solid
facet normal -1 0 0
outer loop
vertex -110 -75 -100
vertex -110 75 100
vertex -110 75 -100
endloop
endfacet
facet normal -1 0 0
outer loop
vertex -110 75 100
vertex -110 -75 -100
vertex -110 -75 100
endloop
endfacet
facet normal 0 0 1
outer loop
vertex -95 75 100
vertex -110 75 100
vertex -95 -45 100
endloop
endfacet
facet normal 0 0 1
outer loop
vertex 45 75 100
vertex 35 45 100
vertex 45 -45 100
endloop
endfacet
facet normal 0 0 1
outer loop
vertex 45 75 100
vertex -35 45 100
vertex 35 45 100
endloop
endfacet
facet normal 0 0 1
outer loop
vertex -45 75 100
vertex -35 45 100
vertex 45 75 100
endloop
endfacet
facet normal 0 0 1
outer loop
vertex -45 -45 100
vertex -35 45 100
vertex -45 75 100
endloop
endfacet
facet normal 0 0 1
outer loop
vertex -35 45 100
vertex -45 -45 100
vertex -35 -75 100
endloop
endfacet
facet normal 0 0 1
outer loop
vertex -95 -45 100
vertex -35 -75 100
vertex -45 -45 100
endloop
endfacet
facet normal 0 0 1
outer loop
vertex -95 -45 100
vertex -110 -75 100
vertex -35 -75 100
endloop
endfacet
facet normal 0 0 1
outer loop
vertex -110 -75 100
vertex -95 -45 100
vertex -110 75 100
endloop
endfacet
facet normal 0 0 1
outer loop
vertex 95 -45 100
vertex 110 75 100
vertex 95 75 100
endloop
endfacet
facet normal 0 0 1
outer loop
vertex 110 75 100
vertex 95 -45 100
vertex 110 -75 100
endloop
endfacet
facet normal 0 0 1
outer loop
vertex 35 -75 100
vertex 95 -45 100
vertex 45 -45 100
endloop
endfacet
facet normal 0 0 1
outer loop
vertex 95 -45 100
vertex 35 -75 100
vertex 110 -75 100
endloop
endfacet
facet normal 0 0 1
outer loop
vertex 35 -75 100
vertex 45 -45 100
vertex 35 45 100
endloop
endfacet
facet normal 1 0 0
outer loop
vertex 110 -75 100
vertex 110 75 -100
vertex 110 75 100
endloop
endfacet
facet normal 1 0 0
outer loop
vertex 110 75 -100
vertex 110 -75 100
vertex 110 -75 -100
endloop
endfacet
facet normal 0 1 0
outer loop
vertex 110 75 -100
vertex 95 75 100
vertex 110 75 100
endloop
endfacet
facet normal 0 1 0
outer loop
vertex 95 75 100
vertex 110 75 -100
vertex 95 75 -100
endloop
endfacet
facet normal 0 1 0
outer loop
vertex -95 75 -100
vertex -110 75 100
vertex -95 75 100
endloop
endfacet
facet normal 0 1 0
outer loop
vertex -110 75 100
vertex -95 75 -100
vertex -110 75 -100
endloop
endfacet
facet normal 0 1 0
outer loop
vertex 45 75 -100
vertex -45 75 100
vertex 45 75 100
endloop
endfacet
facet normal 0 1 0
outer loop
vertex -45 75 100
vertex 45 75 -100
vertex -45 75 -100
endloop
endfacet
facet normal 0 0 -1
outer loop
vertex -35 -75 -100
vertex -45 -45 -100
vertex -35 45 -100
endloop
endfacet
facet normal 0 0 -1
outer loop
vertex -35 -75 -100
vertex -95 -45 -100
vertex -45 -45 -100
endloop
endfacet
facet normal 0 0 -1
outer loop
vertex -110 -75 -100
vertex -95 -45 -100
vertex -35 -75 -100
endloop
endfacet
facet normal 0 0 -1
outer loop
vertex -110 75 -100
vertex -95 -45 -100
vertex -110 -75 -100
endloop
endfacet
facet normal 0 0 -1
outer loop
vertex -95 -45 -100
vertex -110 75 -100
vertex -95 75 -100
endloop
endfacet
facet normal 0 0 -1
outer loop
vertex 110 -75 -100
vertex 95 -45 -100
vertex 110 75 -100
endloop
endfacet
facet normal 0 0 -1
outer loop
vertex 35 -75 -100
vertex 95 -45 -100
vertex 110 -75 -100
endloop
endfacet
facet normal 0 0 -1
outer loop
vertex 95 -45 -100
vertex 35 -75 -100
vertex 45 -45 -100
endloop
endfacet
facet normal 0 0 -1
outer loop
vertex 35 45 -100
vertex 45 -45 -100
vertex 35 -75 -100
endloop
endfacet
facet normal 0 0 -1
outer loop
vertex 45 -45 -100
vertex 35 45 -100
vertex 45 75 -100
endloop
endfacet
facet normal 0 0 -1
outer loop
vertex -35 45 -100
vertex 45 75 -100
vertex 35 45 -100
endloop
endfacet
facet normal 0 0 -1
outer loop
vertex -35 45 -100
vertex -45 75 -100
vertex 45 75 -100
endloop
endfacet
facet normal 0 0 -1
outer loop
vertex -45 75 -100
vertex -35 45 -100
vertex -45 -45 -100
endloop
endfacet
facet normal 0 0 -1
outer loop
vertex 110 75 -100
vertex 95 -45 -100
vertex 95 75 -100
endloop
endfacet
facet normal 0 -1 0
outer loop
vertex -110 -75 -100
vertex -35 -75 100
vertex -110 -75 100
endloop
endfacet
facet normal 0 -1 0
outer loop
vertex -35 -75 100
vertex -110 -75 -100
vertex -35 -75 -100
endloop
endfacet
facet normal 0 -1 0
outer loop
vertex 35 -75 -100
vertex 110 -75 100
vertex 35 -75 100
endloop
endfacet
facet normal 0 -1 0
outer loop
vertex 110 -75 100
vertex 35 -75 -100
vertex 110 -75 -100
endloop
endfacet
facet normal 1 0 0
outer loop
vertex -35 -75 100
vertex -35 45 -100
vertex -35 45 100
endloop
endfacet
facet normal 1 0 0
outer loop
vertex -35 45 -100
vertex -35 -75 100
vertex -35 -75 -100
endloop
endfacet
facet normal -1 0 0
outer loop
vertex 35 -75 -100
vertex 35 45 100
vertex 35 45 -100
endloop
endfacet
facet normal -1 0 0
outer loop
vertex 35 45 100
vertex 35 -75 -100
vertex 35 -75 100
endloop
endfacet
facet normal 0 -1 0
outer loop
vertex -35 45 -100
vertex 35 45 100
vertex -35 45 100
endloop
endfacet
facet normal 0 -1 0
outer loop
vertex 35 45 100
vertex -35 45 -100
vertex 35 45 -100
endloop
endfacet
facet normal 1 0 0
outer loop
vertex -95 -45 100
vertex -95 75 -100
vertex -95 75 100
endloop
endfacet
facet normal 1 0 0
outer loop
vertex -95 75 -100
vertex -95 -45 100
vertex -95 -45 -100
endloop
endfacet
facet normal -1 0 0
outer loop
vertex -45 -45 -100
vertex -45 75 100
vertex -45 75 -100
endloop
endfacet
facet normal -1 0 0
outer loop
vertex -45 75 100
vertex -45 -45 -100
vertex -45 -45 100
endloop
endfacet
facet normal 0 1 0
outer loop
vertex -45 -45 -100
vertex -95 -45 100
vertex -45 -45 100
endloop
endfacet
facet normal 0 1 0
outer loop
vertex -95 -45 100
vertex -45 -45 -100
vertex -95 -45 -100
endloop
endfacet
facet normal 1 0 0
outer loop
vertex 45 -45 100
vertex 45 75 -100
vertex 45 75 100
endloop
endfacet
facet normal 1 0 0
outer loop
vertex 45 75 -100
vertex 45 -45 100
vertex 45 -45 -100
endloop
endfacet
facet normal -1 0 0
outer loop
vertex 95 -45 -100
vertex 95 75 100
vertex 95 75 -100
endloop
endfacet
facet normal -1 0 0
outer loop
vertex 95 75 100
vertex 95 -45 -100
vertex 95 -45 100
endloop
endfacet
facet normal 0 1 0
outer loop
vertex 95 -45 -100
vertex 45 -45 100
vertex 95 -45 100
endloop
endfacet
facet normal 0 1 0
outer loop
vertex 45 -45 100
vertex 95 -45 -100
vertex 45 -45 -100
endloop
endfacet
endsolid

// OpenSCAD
/* 
sponge_holder.scad
A simple sponge holder that sits in the divider between dual sinks.
@author: Suyash Kumar (suyashkumar) 
*/

module sponge_holder(
    width=220, 
    length=150, 
    height=200, 
    sink_cutout_length=70, 
    sponge_width=50,
    sponge_x_offset=70,
    sponge_y_offset=20) {
    difference() {
        cube([width, length, height], center=true);
        translate([0,-sponge_y_offset,0])
            cube([sink_cutout_length, length-sponge_y_offset, height], center=true);
        translate([-sponge_x_offset, sponge_y_offset, 0])
            cube([sponge_width, length-sponge_y_offset, height], center=true);
        translate([sponge_x_offset, sponge_y_offset, 0])
            cube([sponge_width, length-sponge_y_offset, height], center=true);
        //TODO: add water drainage holes
    }
}

sponge_holder();
